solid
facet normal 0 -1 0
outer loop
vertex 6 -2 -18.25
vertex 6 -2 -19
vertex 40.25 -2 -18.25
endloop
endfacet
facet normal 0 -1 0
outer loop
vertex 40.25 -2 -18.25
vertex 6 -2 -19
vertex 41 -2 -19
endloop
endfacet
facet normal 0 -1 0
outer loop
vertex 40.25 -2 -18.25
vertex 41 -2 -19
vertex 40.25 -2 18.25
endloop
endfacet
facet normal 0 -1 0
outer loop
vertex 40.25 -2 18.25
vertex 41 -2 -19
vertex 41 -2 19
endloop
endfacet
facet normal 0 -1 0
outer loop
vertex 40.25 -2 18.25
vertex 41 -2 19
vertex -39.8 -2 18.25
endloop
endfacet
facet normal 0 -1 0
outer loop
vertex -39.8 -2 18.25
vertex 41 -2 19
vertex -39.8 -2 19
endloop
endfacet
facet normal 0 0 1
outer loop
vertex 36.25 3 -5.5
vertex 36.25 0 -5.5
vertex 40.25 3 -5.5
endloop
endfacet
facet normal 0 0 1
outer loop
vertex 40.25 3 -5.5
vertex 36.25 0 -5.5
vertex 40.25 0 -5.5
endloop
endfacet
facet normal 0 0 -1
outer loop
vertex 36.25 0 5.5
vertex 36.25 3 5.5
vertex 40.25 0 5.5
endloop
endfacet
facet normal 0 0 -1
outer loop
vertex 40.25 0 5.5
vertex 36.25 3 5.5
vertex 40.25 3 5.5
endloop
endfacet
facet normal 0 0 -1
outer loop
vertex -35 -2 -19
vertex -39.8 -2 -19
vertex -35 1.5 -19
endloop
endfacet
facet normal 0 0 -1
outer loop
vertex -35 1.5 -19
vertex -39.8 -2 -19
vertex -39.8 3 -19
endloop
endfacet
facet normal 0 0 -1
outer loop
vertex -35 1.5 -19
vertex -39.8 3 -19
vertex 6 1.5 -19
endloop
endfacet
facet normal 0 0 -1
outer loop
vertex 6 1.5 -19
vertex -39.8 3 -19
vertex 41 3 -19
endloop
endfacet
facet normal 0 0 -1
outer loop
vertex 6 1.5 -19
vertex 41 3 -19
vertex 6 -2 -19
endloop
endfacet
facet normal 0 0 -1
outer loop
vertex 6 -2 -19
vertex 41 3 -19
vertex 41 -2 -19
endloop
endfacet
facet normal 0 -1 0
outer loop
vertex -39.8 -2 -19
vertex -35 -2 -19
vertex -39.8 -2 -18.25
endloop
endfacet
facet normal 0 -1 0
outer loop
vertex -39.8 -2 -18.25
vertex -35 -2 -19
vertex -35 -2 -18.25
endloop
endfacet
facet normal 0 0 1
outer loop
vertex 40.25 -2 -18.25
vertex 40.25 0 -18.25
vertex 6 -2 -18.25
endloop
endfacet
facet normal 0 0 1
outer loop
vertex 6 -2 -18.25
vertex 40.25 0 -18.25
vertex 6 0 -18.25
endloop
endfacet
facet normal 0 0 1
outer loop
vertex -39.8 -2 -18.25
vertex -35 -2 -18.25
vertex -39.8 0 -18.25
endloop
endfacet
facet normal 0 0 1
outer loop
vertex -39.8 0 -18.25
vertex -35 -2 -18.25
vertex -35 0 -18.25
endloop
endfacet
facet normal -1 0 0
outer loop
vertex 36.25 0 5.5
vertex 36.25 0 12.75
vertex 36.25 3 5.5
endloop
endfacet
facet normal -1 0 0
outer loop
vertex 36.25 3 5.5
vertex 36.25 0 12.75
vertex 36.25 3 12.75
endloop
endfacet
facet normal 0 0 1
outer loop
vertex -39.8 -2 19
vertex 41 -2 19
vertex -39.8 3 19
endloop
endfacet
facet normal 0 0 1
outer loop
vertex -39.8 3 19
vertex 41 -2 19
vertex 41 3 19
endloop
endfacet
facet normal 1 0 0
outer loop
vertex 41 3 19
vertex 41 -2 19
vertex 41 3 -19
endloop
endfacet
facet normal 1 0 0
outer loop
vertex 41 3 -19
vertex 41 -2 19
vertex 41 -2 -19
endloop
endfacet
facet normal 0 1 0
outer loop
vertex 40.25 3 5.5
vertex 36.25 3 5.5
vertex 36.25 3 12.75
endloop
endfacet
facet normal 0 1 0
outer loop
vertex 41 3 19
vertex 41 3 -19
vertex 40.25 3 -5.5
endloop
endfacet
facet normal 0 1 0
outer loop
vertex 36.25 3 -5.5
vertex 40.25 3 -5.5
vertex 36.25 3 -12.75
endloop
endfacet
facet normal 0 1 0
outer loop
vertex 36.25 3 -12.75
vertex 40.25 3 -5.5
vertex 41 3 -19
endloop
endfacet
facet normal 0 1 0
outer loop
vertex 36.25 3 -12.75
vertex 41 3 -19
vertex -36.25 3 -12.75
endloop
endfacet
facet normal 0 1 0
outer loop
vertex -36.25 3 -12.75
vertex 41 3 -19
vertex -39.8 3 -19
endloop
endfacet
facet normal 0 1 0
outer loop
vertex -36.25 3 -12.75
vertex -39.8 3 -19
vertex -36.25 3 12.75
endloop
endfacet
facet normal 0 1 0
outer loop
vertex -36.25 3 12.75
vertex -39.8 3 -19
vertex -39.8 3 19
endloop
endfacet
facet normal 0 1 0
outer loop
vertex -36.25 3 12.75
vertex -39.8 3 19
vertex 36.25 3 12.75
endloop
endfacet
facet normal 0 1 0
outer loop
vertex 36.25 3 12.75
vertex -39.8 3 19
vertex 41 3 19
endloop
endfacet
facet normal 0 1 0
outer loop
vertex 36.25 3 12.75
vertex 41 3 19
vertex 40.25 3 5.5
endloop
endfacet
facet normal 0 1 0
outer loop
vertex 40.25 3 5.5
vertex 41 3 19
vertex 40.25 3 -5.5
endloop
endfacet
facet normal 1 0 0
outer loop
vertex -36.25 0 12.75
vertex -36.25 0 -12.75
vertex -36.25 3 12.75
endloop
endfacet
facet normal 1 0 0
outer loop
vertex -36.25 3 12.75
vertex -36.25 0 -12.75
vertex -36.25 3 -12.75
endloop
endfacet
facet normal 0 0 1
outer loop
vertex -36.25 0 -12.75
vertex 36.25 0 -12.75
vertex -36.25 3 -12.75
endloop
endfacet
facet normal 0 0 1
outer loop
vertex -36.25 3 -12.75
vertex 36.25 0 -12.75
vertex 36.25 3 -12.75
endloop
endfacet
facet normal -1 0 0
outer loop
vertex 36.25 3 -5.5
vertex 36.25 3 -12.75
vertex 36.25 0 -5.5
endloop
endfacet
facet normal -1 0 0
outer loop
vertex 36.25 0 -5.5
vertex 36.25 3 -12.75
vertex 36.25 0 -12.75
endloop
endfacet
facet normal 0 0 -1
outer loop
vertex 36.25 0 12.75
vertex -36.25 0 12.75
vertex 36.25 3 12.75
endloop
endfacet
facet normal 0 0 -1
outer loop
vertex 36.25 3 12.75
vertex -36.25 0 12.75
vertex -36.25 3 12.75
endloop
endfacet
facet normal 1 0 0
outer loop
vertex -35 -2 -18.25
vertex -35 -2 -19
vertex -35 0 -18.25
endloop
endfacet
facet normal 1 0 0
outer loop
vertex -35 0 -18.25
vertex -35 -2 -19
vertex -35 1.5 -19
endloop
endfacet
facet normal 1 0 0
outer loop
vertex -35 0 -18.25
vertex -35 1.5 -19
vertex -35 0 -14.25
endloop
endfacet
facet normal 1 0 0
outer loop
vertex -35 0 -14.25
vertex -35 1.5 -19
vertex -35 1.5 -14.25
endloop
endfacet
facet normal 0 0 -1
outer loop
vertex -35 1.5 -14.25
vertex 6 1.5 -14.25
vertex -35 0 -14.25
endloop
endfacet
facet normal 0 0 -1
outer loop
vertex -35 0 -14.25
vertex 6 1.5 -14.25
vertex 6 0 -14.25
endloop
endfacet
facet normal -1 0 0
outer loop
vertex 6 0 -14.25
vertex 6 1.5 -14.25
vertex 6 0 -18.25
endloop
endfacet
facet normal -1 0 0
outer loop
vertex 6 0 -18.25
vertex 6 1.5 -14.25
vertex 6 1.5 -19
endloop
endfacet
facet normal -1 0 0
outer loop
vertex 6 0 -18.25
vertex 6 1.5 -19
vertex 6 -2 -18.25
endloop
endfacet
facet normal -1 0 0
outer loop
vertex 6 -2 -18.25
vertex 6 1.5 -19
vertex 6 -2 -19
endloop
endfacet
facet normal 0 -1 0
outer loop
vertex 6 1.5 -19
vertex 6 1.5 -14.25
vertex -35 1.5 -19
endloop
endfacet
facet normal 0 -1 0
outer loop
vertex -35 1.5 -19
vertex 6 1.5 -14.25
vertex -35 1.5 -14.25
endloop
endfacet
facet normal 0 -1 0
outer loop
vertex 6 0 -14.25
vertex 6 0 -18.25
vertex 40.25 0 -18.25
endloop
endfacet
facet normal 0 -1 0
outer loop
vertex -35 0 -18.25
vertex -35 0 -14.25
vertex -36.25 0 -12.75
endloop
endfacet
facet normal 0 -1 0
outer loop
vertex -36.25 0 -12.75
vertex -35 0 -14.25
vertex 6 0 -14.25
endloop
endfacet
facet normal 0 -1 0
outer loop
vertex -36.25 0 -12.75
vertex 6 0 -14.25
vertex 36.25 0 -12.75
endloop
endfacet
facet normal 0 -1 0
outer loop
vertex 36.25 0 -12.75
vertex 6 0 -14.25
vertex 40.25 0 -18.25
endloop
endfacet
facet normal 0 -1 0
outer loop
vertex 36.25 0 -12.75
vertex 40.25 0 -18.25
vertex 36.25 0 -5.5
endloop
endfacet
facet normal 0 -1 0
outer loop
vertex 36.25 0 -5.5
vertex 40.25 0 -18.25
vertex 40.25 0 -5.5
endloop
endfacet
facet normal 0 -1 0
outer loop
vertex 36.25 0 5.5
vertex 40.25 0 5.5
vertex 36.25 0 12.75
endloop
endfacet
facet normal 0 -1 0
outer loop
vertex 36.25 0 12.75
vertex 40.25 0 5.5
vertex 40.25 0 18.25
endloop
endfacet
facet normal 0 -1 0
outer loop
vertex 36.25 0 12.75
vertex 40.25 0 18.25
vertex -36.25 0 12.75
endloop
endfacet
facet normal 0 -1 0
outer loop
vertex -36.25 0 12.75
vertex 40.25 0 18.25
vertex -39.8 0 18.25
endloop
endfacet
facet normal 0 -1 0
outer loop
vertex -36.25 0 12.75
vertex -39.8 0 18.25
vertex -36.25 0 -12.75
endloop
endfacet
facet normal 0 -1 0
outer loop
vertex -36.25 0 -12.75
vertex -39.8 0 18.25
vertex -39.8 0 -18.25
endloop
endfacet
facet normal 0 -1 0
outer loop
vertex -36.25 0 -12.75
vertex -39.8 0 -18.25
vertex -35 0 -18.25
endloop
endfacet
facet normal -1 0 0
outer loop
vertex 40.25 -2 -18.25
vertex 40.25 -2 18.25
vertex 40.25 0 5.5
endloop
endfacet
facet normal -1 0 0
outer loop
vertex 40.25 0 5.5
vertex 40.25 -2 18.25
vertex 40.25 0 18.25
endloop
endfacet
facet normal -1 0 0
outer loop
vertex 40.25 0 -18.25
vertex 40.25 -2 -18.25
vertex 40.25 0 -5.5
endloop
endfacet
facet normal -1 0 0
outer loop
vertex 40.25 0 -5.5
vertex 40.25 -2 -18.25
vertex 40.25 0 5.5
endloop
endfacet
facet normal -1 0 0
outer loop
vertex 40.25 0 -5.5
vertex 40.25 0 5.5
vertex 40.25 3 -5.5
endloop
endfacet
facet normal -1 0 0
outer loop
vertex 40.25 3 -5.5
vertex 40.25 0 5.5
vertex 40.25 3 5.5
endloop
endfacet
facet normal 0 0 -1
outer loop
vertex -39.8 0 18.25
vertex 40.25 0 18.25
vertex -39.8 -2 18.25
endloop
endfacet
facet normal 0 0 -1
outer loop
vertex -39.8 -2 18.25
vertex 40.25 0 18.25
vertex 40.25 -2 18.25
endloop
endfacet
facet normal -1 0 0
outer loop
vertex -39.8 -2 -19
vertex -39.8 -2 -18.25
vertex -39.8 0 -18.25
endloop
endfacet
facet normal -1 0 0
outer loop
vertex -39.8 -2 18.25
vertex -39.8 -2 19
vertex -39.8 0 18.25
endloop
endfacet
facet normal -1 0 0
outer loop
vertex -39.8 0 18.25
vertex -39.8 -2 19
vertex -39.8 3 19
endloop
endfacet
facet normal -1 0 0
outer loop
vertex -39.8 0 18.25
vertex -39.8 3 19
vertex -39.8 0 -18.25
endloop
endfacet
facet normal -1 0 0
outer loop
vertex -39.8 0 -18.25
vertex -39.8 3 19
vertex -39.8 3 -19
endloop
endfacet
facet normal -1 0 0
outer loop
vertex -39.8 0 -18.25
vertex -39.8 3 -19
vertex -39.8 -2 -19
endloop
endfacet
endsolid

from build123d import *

# Parameters (mm, degrees)
SKETCH1_W           = 82
SKETCH1_H           = 38
MAIN_DEPTH          = 3
SKETCH2_W           = 72.5
SKETCH2_H           = 25.5
LCD_CUTOUT_DEPTH    = 46.287967497
SKETCH3_W           = 41
SKETCH3_H           = 4.75
CONNECTOR_CUT_DEPTH = 1.5
SKETCH4_W           = 9.33307462
SKETCH4_H           = 11
CUT_EXTRUDE3_DEPTH  = 46.287967497
SKETCH6_W           = 82
SKETCH6_H           = 38
BOSS_EXTRUDE2_DEPTH = 2
SKETCH7_W           = 80.5
SKETCH7_H           = 36.5
CUT_EXTRUDE6_DEPTH  = 46.287967497
SKETCH8_W           = 41
SKETCH8_H           = 4.75
CUT_EXTRUDE7_DEPTH  = 46.323834789
SKETCH9_W           = 0.75
SKETCH9_H           = 11
BOSS_EXTRUDE3_DEPTH = 3
SKETCH10_W          = 38
SKETCH10_H          = 5
CUT_EXTRUDE8_DEPTH  = 1.2


with BuildPart() as part:
    # Sketch1 → main (new body)
    with BuildSketch(Plane(origin=(0, 0, 0), x_dir=(1, 0, 0), z_dir=(0, 1, 0))):
        Rectangle(SKETCH1_W, SKETCH1_H)
    extrude(amount=MAIN_DEPTH)

    # Sketch2 → LCD cutout (cut, through all)
    with BuildSketch(Plane(origin=(0, 3, 0), x_dir=(1, 0, 0), z_dir=(0, 1, 0))):
        Rectangle(SKETCH2_W, SKETCH2_H)
    extrude(amount=-LCD_CUTOUT_DEPTH, mode=Mode.SUBTRACT)

    # Sketch3 → connector cut (cut)
    with BuildSketch(Plane.XZ):
        with Locations((-14.5, -16.625)):
            Rectangle(SKETCH3_W, SKETCH3_H)
    extrude(amount=-CONNECTOR_CUT_DEPTH, mode=Mode.SUBTRACT)

    # Sketch4 → Cut-Extrude3 (cut, through all)
    with BuildSketch(Plane(origin=(0, 3, 0), x_dir=(1, 0, 0), z_dir=(0, 1, 0))):
        with Locations((36.888390736, 0)):
            Rectangle(SKETCH4_W, SKETCH4_H)
    extrude(amount=-CUT_EXTRUDE3_DEPTH, mode=Mode.SUBTRACT)

    # Sketch6 → Boss-Extrude2 (add)
    with BuildSketch(Plane(origin=(0, 0, 0), x_dir=(1, 0, 0), z_dir=(0, 1, 0))):
        Rectangle(SKETCH6_W, SKETCH6_H)
    extrude(amount=-BOSS_EXTRUDE2_DEPTH)

    # Sketch7 → Cut-Extrude6 (cut, through all)
    with BuildSketch(Plane(origin=(0, 0, 0), x_dir=(1, 0, 0), z_dir=(0, 1, 0))):
        Rectangle(SKETCH7_W, SKETCH7_H)
    extrude(amount=-CUT_EXTRUDE6_DEPTH, mode=Mode.SUBTRACT)

    # Sketch8 → Cut-Extrude7 (cut, through all)
    with BuildSketch(Plane.XZ.offset(-1.5)):
        with Locations((-14.5, -16.625)):
            Rectangle(SKETCH8_W, SKETCH8_H)
    extrude(amount=CUT_EXTRUDE7_DEPTH, mode=Mode.SUBTRACT)

    # Sketch9 → Boss-Extrude3 (add)
    with BuildSketch(Plane(origin=(0, 0, 0), x_dir=(1, 0, 0), z_dir=(0, 1, 0))):
        with Locations((40.625, 0)):
            Rectangle(SKETCH9_W, SKETCH9_H)
    extrude(amount=BOSS_EXTRUDE3_DEPTH)

    # Sketch10 → Cut-Extrude8 (cut)
    with BuildSketch(Plane.ZY.offset(41)):
        with Locations((0, 0.5)):
            Rectangle(SKETCH10_W, SKETCH10_H)
    extrude(amount=-CUT_EXTRUDE8_DEPTH, mode=Mode.SUBTRACT)


solid = part.part
